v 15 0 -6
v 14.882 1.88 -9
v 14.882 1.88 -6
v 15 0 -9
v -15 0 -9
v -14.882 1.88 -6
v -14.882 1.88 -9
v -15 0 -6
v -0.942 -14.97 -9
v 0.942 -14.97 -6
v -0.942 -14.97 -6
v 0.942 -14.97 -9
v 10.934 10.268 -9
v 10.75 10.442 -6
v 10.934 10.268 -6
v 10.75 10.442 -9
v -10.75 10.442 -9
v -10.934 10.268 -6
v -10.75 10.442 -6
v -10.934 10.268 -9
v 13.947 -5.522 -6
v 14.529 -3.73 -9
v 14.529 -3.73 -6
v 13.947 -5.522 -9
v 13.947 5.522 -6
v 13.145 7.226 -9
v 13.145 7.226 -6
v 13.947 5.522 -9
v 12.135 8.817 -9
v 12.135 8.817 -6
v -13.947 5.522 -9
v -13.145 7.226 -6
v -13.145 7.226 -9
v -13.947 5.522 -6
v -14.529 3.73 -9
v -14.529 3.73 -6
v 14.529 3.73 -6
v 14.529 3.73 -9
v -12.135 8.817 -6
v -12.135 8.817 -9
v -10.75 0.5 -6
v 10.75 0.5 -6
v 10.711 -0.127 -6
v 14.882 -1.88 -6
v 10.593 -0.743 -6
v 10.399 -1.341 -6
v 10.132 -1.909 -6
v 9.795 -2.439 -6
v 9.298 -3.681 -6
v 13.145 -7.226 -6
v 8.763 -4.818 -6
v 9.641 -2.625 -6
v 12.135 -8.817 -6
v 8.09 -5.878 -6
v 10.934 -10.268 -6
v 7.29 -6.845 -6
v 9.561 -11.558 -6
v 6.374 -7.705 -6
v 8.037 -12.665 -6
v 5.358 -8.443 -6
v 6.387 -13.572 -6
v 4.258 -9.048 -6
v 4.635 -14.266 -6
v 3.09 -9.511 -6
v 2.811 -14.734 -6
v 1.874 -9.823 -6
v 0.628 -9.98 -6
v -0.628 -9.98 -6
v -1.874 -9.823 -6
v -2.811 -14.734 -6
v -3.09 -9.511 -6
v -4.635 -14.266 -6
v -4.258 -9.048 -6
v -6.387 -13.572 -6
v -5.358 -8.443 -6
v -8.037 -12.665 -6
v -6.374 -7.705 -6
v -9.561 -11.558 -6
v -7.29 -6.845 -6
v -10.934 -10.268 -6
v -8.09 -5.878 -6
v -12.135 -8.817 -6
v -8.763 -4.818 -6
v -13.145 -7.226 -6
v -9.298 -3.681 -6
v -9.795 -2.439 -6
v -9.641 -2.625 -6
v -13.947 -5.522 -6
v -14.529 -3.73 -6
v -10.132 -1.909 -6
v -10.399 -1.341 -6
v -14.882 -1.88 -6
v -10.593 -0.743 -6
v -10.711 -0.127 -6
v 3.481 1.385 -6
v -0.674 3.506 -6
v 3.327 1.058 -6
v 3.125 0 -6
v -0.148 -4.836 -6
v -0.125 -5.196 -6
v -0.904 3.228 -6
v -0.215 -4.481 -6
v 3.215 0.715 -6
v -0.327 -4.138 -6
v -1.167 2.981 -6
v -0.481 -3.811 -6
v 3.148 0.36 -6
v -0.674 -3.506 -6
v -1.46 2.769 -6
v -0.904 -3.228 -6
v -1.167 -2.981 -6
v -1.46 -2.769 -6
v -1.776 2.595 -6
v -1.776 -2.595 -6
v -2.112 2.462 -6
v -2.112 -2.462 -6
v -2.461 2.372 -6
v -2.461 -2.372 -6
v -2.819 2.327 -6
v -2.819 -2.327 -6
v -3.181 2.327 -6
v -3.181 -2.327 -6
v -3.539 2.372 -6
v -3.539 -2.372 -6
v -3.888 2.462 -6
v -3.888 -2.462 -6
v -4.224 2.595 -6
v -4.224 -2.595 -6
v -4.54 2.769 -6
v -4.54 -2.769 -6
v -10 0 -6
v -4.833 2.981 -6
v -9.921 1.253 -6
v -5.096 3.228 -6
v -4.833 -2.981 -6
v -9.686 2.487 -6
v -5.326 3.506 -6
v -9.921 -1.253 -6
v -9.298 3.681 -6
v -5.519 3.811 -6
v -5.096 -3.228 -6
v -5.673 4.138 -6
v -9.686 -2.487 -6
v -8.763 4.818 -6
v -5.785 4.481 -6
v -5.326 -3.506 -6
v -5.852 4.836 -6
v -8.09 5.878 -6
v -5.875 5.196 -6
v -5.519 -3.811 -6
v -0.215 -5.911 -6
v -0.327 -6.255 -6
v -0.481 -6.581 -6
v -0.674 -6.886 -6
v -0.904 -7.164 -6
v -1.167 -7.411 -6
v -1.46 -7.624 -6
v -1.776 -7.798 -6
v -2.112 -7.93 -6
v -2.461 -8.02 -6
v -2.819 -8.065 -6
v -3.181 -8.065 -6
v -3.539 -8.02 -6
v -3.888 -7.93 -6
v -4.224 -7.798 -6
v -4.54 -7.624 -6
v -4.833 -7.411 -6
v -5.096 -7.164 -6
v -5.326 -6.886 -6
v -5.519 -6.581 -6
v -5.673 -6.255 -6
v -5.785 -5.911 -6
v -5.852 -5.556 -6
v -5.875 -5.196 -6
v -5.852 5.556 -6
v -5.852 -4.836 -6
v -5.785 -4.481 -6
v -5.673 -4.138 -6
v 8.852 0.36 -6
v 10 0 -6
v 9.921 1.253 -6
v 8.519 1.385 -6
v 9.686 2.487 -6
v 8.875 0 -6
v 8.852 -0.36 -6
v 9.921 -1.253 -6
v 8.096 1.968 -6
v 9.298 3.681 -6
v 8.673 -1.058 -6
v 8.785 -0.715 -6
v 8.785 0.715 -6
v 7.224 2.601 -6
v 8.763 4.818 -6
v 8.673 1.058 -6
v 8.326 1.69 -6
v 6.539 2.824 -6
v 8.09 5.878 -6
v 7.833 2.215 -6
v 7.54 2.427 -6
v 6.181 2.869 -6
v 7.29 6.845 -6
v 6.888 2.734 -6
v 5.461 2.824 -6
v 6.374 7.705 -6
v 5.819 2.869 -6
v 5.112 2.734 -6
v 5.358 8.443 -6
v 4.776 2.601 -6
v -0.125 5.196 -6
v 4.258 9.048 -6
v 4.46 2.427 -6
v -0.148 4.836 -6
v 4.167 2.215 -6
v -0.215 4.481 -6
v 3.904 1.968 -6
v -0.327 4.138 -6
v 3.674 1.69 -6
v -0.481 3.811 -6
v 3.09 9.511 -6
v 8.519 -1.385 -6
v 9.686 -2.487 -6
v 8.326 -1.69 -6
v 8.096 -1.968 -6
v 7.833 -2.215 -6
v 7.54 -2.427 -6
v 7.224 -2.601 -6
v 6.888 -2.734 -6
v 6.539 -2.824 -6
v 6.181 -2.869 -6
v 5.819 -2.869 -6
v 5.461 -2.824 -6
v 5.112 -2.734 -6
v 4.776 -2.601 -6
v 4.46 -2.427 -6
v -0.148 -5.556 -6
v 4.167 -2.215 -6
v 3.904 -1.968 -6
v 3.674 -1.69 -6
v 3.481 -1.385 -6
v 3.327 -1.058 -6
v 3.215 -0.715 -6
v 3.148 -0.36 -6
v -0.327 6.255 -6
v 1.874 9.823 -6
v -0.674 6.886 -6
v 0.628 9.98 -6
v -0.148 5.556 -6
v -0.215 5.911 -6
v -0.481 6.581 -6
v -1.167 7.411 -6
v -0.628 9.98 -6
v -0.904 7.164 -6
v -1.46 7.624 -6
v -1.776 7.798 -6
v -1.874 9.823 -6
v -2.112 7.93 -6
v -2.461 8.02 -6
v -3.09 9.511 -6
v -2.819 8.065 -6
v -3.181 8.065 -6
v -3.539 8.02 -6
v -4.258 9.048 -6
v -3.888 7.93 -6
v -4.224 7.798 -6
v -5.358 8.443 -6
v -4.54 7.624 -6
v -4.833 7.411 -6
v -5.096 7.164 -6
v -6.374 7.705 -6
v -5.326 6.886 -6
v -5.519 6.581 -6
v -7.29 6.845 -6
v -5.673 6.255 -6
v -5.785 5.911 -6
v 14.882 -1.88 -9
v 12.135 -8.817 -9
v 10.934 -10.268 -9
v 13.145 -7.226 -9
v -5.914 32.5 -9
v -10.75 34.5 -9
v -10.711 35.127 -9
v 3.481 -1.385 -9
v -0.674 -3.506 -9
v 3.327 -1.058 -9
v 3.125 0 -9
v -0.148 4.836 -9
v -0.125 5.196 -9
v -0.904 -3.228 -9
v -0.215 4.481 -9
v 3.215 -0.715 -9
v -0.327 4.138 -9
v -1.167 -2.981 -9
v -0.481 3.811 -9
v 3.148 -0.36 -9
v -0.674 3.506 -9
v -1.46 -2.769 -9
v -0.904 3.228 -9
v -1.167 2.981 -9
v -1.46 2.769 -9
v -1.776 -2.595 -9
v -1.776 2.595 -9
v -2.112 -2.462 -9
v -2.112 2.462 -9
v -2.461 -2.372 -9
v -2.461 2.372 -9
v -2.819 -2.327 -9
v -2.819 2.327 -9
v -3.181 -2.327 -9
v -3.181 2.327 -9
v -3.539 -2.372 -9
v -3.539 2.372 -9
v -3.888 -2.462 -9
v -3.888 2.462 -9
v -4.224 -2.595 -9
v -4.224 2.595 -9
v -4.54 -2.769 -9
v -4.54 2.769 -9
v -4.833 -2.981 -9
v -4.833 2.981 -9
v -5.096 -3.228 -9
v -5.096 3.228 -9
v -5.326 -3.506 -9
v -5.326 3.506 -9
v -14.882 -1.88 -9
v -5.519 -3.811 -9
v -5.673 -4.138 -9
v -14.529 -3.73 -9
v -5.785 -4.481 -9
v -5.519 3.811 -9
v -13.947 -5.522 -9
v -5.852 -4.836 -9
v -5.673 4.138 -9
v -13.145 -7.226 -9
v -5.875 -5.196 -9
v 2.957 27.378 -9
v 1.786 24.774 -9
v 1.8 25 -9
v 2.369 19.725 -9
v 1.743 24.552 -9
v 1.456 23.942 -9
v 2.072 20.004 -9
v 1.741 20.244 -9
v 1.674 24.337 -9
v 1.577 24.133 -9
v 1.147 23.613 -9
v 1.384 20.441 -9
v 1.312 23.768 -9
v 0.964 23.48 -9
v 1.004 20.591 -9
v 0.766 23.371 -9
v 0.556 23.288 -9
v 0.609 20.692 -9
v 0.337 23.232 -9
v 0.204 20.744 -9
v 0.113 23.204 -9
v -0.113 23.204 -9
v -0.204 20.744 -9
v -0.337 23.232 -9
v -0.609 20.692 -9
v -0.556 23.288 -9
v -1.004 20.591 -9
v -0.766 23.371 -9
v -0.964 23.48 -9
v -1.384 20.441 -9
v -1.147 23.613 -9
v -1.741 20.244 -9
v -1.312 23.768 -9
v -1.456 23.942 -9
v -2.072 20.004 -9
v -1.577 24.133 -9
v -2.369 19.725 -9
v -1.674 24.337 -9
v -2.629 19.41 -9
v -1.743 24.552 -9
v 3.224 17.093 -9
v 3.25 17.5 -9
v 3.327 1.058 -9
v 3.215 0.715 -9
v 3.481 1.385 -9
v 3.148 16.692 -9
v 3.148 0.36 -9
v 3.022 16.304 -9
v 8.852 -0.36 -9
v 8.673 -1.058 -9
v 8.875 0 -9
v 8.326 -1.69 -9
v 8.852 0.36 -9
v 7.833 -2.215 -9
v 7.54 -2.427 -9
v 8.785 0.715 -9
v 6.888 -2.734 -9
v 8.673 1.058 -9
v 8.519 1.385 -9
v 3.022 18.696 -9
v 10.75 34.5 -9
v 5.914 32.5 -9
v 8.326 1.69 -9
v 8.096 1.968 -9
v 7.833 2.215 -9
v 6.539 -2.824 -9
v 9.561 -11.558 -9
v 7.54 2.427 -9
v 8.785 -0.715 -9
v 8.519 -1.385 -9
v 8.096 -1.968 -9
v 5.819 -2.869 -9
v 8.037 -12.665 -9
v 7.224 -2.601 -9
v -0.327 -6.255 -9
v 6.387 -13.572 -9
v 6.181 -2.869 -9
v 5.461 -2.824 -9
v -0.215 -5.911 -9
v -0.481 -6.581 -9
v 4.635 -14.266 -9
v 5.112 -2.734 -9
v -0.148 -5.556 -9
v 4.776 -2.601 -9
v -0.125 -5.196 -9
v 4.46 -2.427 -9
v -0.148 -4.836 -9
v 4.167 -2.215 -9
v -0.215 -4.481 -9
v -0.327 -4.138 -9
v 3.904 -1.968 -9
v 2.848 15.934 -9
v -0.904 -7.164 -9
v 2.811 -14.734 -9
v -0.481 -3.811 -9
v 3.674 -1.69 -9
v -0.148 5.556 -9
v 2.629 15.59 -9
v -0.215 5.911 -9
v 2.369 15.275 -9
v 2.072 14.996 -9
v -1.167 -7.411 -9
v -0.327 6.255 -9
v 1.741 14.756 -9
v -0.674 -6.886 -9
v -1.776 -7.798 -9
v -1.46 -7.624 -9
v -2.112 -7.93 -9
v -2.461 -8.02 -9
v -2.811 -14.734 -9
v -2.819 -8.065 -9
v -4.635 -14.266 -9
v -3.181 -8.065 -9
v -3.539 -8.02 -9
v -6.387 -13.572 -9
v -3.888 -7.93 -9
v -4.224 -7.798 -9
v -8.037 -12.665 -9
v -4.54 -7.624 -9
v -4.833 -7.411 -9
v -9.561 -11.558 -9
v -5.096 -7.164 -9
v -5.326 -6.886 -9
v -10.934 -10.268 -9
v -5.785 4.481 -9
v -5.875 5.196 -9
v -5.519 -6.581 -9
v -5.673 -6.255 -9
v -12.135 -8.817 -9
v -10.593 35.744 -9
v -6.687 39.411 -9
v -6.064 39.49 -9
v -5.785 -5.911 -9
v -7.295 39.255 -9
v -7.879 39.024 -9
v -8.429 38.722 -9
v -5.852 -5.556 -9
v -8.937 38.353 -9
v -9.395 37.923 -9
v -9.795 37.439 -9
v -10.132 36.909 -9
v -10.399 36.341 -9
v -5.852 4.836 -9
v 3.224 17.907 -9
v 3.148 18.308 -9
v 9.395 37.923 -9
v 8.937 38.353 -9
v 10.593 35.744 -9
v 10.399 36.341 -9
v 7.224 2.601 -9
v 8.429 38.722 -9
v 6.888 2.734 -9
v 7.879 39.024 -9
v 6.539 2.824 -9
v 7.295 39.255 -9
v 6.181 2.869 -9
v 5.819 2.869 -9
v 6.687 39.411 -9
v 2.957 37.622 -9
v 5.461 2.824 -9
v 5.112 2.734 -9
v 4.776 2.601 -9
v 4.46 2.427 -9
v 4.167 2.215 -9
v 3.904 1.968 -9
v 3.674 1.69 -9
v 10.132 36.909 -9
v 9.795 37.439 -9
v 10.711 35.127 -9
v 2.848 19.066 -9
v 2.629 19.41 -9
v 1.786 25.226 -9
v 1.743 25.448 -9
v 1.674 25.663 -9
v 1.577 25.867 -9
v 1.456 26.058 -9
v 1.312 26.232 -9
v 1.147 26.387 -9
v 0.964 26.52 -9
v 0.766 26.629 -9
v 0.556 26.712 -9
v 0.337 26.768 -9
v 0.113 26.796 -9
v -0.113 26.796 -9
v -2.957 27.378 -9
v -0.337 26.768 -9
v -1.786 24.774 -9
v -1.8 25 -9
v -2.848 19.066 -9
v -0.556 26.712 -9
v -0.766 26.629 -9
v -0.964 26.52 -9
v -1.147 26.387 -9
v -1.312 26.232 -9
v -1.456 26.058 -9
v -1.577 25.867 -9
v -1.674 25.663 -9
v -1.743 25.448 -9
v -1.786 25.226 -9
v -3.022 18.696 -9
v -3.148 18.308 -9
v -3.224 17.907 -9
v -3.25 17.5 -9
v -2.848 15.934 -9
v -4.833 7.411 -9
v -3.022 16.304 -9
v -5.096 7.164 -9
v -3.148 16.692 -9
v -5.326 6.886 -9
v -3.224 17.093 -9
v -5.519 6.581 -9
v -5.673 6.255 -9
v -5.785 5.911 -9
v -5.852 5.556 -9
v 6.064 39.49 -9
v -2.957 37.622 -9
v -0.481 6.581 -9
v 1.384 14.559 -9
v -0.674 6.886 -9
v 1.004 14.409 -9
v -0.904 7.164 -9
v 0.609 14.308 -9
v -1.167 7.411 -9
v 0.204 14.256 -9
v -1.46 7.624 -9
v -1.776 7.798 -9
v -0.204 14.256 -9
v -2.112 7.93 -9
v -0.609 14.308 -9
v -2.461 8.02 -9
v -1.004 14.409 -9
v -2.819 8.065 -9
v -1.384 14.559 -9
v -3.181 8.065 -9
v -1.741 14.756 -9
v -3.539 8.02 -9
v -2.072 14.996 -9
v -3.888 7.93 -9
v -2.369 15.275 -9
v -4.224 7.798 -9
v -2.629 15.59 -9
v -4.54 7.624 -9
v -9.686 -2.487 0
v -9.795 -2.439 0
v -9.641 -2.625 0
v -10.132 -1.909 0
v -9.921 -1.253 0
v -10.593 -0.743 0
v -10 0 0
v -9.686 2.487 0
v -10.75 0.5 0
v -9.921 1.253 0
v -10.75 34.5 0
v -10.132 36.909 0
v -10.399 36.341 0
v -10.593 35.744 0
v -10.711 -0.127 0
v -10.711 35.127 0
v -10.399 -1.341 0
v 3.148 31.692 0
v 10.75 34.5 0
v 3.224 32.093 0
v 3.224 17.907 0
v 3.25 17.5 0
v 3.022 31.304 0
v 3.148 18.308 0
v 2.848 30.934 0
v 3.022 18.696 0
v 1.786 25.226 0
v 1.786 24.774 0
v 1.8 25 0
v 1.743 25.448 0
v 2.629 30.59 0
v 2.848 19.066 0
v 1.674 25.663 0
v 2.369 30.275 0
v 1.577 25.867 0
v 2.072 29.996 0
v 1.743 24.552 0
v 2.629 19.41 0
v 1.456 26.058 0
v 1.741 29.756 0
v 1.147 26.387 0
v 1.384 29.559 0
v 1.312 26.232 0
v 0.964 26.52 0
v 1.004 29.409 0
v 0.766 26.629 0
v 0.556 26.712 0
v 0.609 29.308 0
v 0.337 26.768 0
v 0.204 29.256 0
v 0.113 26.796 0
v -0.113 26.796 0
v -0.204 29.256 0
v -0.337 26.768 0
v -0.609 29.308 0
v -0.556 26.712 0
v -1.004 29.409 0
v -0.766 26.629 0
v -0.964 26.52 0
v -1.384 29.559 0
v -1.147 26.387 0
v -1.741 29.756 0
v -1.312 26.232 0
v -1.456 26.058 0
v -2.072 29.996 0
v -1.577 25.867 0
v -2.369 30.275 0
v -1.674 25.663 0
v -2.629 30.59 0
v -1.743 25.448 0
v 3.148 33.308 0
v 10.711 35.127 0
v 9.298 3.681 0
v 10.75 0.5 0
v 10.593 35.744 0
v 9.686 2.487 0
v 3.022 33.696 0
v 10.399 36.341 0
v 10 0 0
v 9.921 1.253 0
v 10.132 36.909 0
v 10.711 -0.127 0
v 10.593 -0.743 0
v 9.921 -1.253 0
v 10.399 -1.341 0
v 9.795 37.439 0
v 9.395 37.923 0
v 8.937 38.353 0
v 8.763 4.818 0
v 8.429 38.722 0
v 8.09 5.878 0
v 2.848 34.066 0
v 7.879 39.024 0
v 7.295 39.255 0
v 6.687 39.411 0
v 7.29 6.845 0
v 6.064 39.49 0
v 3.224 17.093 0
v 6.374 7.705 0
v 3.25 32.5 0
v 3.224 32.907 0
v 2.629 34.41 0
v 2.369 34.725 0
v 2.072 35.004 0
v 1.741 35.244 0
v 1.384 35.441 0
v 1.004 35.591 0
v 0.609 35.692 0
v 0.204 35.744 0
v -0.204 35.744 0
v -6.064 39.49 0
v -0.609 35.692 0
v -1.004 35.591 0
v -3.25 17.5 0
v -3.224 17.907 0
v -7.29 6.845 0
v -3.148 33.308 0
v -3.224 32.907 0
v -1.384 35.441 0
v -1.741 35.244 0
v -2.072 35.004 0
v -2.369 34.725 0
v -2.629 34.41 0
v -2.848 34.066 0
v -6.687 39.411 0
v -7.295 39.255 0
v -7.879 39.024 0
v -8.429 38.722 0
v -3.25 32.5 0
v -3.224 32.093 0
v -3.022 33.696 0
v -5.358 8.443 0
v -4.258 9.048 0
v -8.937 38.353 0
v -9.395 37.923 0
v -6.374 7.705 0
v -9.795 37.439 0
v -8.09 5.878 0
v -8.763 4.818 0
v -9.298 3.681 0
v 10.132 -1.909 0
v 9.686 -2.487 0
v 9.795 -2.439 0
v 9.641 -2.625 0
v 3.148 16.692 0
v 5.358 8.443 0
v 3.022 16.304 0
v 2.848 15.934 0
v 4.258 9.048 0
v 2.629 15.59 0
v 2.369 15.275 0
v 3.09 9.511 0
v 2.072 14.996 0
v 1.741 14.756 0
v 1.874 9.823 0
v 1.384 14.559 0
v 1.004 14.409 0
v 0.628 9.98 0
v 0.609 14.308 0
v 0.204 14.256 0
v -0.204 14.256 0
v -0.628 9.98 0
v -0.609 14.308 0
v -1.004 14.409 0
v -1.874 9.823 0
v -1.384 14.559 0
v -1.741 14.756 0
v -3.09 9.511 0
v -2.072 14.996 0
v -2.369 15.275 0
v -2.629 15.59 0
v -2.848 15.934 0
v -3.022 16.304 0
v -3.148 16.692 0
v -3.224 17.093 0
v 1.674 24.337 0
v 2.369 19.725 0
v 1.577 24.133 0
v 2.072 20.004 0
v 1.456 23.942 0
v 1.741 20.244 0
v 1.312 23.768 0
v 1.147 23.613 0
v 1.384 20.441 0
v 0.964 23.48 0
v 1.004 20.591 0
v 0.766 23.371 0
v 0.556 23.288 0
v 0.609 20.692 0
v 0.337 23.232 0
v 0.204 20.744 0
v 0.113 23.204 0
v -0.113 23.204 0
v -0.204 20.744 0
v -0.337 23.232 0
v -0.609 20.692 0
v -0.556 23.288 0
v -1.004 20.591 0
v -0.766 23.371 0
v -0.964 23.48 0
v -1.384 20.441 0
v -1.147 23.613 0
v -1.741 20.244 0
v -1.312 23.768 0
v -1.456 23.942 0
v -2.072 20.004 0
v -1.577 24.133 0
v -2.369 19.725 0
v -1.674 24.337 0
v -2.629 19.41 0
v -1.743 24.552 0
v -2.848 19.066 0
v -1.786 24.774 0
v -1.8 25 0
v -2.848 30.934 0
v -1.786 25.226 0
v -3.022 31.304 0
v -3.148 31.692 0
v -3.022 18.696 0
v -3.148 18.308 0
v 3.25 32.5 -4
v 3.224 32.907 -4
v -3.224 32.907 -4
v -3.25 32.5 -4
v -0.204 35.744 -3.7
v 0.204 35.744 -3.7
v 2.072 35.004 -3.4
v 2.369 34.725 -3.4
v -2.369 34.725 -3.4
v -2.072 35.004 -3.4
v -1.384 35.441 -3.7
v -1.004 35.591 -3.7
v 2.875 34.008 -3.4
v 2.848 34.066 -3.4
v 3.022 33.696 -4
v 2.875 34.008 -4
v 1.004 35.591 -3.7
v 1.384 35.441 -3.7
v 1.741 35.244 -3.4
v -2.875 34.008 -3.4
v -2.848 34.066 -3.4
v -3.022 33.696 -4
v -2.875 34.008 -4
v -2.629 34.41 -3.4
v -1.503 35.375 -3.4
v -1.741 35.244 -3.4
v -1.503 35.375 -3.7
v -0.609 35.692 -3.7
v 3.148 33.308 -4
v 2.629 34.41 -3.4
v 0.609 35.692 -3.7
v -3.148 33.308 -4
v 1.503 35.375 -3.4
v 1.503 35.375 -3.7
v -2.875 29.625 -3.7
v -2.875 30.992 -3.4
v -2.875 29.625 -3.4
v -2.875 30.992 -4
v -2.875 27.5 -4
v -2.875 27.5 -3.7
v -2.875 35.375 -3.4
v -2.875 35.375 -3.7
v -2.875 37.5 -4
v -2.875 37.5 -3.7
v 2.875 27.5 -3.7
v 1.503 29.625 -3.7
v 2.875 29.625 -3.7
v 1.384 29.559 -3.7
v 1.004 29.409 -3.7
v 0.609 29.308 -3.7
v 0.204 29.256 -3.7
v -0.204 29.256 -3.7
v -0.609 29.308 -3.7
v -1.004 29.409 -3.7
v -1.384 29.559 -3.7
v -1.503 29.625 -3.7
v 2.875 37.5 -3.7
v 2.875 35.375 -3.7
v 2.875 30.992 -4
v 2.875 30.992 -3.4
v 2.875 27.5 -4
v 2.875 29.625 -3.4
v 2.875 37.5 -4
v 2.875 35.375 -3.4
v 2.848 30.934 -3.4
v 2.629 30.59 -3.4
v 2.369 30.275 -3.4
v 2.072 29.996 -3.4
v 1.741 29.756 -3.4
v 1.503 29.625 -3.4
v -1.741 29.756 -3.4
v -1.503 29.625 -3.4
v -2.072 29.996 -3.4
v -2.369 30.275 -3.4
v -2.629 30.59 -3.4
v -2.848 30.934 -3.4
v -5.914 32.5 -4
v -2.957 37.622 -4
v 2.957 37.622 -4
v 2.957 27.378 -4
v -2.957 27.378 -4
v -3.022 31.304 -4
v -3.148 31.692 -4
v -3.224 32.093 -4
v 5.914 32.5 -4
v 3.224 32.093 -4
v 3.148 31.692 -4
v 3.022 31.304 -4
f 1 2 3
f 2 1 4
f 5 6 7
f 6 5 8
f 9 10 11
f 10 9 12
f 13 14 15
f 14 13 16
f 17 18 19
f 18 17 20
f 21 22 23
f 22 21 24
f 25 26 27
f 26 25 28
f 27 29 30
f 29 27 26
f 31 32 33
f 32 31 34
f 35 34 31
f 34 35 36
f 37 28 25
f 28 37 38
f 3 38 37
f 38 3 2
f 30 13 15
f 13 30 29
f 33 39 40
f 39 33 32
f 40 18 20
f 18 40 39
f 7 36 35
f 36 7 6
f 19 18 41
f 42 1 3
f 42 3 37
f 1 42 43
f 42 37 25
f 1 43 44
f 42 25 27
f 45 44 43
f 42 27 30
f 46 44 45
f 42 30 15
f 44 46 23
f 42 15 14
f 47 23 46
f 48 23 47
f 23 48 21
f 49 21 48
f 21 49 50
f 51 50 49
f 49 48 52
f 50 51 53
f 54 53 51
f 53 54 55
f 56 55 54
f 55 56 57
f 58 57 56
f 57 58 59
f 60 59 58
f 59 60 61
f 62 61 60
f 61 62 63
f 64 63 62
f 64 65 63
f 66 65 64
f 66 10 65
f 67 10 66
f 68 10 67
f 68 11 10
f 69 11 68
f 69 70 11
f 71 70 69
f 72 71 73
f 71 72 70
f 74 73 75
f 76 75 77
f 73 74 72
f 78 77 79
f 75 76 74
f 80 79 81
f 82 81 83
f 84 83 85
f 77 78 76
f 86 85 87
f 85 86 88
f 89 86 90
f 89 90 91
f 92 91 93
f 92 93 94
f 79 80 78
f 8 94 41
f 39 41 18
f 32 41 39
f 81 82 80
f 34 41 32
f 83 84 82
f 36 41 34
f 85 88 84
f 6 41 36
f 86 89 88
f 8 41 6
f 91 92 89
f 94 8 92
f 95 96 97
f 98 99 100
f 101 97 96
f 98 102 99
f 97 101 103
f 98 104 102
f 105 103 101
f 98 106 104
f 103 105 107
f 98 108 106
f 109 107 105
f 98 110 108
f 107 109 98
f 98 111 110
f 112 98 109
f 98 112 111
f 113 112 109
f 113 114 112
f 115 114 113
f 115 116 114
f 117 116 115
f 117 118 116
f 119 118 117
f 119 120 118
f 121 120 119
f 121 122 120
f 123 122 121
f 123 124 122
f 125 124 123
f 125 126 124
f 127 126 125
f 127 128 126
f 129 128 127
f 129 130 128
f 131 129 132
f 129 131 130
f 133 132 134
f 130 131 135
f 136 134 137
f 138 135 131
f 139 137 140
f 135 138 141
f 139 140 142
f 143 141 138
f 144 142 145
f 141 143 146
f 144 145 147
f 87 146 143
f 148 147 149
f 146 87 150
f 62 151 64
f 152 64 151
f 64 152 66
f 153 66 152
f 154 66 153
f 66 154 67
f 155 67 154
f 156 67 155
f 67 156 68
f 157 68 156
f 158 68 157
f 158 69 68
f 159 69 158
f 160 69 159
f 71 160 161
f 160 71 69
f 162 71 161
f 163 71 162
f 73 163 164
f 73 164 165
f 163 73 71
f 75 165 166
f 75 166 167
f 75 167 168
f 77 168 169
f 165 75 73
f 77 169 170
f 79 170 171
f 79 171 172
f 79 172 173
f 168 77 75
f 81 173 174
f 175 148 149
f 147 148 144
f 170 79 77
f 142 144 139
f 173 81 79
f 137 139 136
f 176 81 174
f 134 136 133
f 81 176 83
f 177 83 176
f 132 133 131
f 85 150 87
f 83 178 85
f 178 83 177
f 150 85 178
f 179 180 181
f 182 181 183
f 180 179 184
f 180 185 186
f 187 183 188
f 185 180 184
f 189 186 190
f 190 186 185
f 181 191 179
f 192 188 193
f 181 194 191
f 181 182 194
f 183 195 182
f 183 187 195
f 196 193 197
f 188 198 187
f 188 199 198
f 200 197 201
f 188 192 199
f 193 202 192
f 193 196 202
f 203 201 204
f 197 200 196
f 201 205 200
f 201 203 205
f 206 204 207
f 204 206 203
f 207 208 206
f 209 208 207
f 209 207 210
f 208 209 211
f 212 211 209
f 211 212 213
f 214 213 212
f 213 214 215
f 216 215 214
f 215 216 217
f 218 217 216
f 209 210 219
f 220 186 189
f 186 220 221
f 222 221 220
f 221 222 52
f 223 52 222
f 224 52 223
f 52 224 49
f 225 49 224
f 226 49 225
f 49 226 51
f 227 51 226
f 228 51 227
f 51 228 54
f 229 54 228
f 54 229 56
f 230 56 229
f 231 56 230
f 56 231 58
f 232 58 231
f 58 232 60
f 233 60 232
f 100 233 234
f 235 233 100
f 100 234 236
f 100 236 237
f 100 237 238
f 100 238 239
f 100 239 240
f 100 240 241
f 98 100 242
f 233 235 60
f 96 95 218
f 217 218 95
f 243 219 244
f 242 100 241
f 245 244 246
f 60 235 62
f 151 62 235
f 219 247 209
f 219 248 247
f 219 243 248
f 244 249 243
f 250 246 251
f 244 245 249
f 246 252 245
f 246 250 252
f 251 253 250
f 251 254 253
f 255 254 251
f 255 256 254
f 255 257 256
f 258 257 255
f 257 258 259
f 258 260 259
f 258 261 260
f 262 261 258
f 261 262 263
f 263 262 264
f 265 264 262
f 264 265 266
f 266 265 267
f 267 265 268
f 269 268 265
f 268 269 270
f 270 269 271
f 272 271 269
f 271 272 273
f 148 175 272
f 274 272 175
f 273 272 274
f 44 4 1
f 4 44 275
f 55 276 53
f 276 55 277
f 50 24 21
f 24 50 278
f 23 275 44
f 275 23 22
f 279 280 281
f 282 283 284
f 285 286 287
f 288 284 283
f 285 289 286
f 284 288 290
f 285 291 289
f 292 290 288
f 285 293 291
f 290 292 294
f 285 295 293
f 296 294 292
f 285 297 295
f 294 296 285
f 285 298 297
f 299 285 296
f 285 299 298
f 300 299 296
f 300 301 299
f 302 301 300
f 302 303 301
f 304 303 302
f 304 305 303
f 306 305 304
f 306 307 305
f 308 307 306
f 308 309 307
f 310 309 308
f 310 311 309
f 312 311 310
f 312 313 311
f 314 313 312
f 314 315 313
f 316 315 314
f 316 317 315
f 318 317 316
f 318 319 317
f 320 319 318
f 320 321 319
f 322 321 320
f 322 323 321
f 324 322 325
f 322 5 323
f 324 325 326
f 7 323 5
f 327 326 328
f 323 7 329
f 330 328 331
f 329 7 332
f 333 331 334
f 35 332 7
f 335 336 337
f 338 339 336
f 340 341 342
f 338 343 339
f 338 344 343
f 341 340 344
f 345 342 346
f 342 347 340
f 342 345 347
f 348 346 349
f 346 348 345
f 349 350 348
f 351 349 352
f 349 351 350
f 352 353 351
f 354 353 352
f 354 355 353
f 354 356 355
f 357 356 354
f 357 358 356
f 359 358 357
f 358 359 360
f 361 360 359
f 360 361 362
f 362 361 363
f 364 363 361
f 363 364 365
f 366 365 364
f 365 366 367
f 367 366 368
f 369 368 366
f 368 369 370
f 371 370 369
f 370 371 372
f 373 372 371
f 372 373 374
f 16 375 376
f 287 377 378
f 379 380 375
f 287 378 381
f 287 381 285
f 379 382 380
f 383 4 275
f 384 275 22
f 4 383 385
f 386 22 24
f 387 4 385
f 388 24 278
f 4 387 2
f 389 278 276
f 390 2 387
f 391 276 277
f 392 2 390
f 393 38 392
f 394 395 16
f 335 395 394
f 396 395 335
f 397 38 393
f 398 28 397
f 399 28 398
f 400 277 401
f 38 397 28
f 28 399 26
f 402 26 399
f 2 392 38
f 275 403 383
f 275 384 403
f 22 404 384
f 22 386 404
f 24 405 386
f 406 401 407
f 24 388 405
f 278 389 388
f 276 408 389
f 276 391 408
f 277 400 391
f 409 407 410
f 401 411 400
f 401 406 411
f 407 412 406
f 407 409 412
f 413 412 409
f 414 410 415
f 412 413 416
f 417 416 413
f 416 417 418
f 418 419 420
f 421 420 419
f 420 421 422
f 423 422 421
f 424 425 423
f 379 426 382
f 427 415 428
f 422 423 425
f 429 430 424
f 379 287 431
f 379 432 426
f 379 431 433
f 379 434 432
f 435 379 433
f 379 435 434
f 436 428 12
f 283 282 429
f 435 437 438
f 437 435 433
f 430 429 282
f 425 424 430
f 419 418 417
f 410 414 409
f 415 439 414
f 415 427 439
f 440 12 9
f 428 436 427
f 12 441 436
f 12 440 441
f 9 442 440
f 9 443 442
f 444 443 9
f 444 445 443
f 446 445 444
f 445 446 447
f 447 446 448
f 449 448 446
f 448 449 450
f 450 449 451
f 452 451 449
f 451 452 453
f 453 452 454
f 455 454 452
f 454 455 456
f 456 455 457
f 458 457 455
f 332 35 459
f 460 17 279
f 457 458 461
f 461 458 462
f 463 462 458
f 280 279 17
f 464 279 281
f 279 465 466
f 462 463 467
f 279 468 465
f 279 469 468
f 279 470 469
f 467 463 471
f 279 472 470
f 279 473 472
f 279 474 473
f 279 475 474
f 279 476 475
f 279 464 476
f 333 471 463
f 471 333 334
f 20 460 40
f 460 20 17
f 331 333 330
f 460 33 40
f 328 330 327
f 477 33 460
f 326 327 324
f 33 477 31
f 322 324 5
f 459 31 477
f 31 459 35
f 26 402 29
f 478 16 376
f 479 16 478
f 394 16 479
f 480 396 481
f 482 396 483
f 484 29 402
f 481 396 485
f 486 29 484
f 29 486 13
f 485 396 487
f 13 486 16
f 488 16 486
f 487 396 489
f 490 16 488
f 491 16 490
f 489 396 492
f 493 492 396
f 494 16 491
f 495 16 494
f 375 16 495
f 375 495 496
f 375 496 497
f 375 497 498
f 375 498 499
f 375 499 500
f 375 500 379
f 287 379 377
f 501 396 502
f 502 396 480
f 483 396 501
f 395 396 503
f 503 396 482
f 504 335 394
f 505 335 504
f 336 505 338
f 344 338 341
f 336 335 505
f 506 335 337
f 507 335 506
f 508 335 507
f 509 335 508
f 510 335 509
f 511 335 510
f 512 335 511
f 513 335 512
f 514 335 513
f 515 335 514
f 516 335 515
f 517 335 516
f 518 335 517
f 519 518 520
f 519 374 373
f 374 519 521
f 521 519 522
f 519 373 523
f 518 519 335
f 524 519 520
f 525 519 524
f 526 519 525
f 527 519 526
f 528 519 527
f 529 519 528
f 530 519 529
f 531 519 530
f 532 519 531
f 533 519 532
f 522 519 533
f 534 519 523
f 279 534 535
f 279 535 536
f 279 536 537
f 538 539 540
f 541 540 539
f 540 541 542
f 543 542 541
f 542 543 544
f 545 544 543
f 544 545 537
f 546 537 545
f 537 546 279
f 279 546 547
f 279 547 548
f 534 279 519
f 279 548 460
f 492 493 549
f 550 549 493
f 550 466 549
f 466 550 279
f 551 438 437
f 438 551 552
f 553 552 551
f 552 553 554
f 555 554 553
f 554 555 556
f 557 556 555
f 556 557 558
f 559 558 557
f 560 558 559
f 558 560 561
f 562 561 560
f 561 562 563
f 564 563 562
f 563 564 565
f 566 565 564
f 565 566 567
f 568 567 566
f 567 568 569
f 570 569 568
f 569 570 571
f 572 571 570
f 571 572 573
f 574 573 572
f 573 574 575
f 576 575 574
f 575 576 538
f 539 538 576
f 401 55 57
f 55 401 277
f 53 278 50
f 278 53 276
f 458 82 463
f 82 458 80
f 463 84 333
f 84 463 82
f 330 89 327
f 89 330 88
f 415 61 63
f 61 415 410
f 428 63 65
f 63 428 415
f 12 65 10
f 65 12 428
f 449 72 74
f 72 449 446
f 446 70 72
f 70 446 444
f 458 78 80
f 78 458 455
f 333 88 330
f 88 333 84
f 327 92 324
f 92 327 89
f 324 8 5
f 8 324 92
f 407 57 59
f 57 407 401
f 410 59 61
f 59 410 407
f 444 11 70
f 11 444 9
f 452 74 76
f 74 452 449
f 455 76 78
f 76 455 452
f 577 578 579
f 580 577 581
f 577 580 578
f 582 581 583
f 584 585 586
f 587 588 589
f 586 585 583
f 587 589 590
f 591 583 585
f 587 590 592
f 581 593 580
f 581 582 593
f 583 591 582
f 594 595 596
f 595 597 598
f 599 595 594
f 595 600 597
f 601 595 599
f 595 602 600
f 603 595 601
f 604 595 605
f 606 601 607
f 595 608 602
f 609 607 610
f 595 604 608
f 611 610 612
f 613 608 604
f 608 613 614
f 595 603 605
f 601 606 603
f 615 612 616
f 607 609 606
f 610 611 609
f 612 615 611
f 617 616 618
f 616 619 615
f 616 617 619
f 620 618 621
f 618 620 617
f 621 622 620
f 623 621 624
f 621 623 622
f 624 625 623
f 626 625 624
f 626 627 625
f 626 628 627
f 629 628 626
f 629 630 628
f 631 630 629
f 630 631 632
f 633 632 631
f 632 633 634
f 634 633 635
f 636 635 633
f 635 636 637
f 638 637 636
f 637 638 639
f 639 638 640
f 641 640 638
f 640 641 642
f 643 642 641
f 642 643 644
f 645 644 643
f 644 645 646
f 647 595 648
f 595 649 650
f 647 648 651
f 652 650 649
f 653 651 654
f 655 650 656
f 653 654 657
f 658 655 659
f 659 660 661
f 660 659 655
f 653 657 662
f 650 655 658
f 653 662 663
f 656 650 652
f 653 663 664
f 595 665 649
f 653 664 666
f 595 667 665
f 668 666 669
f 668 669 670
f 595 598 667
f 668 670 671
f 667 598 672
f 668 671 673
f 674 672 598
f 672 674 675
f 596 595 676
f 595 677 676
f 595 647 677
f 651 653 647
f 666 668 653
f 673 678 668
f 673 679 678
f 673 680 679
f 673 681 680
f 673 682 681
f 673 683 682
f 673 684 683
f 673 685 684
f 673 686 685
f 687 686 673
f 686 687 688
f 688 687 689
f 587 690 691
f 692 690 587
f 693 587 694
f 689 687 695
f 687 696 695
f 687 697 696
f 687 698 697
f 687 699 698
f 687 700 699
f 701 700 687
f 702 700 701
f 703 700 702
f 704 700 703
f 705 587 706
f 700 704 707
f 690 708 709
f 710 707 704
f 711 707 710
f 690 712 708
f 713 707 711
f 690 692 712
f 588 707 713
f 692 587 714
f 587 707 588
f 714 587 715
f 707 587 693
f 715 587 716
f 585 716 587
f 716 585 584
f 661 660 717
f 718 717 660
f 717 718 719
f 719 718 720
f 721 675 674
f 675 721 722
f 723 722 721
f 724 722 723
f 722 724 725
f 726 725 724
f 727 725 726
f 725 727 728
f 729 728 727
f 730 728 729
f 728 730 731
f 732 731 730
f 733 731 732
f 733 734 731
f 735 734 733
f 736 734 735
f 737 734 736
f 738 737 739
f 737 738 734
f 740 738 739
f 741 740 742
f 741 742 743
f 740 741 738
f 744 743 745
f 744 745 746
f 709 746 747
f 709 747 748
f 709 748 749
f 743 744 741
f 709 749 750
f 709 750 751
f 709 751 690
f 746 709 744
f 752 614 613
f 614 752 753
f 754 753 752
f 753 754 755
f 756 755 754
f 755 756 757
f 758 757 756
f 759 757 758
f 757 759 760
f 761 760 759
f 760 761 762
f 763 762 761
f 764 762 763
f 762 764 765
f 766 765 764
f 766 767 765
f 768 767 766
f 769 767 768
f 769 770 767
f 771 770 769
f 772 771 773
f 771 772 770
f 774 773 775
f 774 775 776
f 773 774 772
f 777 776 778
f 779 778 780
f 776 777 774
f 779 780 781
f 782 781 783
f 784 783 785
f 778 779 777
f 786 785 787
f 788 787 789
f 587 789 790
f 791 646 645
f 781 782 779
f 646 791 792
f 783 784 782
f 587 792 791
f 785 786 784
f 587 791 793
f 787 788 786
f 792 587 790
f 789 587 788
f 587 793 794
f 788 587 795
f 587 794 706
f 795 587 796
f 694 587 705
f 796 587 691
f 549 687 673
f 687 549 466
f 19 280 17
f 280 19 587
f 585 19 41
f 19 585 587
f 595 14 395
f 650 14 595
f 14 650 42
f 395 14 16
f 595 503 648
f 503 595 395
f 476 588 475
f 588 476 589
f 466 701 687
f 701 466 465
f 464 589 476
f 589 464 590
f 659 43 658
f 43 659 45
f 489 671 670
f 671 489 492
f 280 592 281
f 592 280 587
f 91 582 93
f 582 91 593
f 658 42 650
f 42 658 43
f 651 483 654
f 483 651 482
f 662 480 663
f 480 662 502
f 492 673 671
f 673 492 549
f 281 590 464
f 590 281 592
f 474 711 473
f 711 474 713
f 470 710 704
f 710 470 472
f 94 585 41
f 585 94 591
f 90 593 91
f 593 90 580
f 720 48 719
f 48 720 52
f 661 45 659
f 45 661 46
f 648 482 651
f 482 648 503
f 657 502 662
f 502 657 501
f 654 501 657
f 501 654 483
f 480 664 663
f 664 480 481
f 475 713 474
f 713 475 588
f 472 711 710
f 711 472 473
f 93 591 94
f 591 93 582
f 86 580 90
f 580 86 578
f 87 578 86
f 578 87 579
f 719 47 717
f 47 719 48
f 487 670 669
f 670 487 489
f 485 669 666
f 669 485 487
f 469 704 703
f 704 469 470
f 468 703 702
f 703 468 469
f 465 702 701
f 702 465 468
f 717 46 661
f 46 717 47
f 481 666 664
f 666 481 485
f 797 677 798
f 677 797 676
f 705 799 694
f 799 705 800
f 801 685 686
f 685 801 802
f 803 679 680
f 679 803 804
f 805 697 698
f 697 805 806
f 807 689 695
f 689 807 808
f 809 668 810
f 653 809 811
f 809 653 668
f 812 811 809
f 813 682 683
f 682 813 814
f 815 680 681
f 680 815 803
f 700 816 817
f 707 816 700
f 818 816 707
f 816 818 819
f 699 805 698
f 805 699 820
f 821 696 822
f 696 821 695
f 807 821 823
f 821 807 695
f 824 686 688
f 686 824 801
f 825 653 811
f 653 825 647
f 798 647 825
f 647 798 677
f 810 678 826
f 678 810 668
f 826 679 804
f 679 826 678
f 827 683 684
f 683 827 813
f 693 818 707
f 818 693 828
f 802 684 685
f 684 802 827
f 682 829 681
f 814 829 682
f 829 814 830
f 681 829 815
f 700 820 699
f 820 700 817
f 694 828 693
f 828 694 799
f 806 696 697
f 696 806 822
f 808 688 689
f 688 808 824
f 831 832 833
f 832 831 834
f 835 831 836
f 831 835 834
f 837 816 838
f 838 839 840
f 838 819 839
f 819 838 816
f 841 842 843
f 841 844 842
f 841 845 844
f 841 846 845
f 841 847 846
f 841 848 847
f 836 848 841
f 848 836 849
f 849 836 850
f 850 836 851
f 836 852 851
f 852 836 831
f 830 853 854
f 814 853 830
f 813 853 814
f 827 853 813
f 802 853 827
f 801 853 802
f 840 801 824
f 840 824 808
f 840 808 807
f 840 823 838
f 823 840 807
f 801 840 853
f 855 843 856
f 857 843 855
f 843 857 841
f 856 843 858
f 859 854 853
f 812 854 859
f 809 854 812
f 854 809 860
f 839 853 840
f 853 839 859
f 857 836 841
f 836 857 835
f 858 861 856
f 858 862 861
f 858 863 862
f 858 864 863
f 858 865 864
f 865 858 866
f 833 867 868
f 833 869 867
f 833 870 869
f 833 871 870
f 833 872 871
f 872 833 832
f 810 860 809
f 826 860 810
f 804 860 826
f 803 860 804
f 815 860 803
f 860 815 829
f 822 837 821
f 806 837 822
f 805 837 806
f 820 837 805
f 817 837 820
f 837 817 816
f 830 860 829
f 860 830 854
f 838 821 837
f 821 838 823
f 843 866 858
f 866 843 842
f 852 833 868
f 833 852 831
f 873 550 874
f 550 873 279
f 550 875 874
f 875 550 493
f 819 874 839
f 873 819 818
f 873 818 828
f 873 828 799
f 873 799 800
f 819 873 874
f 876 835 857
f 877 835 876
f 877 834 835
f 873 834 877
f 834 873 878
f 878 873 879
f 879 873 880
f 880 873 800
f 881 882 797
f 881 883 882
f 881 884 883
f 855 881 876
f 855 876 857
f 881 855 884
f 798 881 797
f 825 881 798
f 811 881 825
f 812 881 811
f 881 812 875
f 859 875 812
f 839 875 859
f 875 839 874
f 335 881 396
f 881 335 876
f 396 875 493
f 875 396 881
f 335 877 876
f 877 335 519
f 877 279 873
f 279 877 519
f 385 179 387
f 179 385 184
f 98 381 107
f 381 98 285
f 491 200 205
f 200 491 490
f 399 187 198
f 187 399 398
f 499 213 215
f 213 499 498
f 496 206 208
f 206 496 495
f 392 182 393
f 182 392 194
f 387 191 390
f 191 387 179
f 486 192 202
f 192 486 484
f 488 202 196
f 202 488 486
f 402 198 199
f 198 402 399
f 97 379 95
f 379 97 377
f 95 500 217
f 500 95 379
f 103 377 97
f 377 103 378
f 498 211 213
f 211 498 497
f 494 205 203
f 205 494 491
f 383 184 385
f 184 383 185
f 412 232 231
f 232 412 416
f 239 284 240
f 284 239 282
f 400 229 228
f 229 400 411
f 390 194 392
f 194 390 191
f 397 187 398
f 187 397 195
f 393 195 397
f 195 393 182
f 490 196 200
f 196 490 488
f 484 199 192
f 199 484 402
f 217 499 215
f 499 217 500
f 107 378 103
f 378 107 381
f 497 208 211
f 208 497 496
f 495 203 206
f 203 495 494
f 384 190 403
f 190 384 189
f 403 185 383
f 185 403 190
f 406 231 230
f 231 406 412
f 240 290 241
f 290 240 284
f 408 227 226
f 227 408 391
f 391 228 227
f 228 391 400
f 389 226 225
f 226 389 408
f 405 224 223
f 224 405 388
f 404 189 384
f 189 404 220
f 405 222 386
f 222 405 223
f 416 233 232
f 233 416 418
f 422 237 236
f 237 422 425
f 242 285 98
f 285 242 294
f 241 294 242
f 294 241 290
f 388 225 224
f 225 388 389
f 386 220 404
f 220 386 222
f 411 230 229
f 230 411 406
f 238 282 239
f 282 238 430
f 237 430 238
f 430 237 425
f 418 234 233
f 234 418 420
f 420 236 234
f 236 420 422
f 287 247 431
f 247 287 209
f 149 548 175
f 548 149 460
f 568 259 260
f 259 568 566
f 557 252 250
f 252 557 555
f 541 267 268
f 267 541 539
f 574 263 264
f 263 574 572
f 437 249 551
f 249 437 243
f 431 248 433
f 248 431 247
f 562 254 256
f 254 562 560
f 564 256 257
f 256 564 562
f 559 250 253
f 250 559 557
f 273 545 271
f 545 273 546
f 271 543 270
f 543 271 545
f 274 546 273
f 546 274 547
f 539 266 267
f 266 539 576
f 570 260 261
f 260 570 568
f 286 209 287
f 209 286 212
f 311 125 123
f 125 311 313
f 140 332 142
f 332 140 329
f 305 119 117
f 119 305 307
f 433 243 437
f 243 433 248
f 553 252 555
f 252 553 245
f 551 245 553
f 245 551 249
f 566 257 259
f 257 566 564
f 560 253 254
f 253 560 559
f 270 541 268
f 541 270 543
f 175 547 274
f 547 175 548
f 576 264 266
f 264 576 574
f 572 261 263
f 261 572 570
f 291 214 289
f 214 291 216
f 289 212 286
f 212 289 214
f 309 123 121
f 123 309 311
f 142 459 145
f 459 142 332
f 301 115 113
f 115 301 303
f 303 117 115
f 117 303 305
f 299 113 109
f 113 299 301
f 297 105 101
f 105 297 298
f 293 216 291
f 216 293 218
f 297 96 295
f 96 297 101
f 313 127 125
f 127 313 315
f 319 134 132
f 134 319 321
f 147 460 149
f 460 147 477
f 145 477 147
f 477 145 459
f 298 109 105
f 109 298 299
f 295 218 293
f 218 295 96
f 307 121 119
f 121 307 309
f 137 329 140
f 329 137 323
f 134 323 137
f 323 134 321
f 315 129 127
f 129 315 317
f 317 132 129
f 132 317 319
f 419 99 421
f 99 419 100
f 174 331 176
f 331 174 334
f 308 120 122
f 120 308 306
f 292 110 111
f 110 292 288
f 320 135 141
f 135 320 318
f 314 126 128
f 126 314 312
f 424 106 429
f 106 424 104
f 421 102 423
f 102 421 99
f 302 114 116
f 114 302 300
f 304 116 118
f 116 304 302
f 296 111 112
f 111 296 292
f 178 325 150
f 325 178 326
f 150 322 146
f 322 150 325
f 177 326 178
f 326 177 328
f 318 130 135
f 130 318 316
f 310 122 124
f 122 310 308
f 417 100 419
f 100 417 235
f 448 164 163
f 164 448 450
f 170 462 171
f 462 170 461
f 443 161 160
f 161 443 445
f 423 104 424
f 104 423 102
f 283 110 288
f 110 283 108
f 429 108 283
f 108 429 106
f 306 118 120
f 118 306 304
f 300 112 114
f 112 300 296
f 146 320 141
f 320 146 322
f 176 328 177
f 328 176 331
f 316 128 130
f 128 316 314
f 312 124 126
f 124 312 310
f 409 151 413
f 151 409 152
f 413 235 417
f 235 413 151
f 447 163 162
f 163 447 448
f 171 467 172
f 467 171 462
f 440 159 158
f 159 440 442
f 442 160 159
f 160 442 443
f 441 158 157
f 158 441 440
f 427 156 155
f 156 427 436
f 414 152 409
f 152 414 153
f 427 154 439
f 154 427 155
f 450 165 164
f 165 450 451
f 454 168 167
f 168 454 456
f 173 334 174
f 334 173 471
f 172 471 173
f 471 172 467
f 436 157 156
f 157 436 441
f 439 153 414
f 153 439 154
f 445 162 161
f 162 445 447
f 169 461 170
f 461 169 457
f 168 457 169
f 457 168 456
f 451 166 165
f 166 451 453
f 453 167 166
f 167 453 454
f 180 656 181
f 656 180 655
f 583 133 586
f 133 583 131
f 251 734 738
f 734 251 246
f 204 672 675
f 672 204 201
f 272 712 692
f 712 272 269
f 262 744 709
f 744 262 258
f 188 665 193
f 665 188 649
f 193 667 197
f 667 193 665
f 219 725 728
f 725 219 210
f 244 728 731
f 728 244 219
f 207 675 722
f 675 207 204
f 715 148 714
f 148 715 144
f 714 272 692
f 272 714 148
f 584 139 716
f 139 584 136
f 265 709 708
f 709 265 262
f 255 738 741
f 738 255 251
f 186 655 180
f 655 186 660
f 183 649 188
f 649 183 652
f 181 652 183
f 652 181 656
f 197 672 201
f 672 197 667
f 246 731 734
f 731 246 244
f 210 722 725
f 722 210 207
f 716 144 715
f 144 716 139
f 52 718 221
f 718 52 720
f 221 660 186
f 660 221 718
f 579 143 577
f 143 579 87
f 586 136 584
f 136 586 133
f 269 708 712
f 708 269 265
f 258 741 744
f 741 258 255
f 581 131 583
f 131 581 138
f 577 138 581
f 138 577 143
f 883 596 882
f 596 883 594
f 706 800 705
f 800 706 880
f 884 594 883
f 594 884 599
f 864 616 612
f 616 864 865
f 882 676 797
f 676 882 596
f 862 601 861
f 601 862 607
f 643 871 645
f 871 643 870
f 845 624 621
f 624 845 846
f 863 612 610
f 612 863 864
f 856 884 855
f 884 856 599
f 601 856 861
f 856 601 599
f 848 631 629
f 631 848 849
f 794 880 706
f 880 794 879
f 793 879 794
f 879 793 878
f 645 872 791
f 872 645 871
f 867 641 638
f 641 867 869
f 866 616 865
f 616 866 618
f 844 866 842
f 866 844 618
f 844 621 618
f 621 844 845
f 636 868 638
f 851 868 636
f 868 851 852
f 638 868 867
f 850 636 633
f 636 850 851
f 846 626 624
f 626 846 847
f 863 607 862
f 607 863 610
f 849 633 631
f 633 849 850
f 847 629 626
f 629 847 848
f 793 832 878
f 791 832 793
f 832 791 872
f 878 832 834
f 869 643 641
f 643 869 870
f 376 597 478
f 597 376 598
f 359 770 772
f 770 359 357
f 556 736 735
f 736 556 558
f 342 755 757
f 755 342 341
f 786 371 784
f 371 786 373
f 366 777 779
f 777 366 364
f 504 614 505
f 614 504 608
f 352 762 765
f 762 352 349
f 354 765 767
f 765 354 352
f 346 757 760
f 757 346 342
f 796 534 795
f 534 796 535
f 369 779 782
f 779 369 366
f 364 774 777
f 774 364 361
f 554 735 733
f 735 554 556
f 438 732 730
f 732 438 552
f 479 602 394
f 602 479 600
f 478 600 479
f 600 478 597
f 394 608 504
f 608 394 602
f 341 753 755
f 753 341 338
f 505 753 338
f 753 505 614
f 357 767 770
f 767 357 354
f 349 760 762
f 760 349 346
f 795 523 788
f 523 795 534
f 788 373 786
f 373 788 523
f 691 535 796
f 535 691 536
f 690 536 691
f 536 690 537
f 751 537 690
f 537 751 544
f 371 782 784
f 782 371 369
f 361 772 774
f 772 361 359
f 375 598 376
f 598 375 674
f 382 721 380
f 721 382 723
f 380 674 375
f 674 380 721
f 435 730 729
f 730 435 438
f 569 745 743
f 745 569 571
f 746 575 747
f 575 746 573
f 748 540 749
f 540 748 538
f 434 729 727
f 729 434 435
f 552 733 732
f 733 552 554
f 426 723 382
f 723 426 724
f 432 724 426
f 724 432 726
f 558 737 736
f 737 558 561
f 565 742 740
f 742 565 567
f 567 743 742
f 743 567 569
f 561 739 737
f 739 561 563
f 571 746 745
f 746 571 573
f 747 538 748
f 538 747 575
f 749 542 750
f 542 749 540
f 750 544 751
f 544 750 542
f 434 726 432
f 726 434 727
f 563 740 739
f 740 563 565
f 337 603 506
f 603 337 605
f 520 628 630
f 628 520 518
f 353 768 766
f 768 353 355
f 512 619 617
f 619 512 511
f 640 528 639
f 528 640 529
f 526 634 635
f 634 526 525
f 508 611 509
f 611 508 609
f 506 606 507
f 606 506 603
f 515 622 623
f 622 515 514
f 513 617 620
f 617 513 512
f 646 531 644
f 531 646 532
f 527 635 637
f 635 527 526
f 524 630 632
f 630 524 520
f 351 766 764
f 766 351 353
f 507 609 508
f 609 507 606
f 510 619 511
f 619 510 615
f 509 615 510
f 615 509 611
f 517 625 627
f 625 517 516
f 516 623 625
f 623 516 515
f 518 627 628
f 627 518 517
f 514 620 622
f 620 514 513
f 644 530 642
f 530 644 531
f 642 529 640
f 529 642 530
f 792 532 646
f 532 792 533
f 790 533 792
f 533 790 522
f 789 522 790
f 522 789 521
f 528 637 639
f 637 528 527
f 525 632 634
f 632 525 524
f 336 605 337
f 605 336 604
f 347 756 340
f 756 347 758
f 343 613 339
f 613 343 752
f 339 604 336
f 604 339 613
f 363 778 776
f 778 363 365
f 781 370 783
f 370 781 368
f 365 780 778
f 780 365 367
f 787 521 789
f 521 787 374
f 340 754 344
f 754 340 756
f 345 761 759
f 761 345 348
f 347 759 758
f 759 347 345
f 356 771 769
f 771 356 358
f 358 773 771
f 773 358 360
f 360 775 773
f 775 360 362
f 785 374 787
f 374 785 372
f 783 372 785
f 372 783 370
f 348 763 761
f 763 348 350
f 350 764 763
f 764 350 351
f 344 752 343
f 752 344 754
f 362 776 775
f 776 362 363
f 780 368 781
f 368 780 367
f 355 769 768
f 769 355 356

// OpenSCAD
$fn = 50;


difference() {
	union() {
		translate(v = [0, 0, -9.0000000000]) {
			cylinder(h = 3, r = 15.0000000000);
		}
		translate(v = [0, 17.5000000000, -9]) {
			hull() {
				translate(v = [-2.0000000000, 17.0000000000, 0]) {
					cylinder(h = 9, r = 5);
				}
				translate(v = [2.0000000000, 17.0000000000, 0]) {
					cylinder(h = 9, r = 5);
				}
				translate(v = [-2.0000000000, -17.0000000000, 0]) {
					cylinder(h = 9, r = 5);
				}
				translate(v = [2.0000000000, -17.0000000000, 0]) {
					cylinder(h = 9, r = 5);
				}
			}
		}
		translate(v = [0, 17.5000000000, -9]) {
			hull() {
				translate(v = [-5.7500000000, 17.0000000000, 0]) {
					cylinder(h = 9, r = 5);
				}
				translate(v = [5.7500000000, 17.0000000000, 0]) {
					cylinder(h = 9, r = 5);
				}
				translate(v = [-5.7500000000, -17.0000000000, 0]) {
					cylinder(h = 9, r = 5);
				}
				translate(v = [5.7500000000, -17.0000000000, 0]) {
					cylinder(h = 9, r = 5);
				}
			}
		}
	}
	union() {
		translate(v = [0, 32.5000000000, 0]) {
			rotate(a = [0, 0, 0]) {
				difference() {
					union() {
						translate(v = [0, 0, -50.0000000000]) {
							cylinder(h = 100, r = 3.2500000000);
						}
					}
					union();
				}
			}
		}
		translate(v = [0, 32.5000000000, -9]) {
			rotate(a = [0, 0, 0]) {
				difference() {
					union() {
						translate(v = [-2.8750000000, -5.0000000000, -0.3000000000]) {
							cube(size = [5.7500000000, 10, 0.3000000000]);
						}
						translate(v = [-2.8750000000, -2.8750000000, -0.6000000000]) {
							cube(size = [5.7500000000, 5.7500000000, 0.3000000000]);
						}
						translate(v = [-2.8750000000, -5.0000000000, 5]) {
							cube(size = [5.7500000000, 10, 0.3000000000]);
						}
						translate(v = [-2.8750000000, -2.8750000000, 5.3000000000]) {
							cube(size = [5.7500000000, 5.7500000000, 0.3000000000]);
						}
						linear_extrude(height = 5) {
							polygon(points = [[5.9142500000, 0.0000000000], [2.9571250000, 5.1218907443], [-2.9571250000, 5.1218907443], [-5.9142500000, 0.0000000000], [-2.9571250000, -5.1218907443], [2.9571250000, -5.1218907443]]);
						}
						translate(v = [-2.8750000000, -5.0000000000, -0.3000000000]) {
							cube(size = [5.7500000000, 10, 0.3000000000]);
						}
						translate(v = [-2.8750000000, -2.8750000000, -0.6000000000]) {
							cube(size = [5.7500000000, 5.7500000000, 0.3000000000]);
						}
						translate(v = [-2.8750000000, -5.0000000000, 5]) {
							cube(size = [5.7500000000, 10, 0.3000000000]);
						}
						translate(v = [-2.8750000000, -2.8750000000, 5.3000000000]) {
							cube(size = [5.7500000000, 5.7500000000, 0.3000000000]);
						}
						translate(v = [-2.8750000000, -5.0000000000, -0.3000000000]) {
							cube(size = [5.7500000000, 10, 0.3000000000]);
						}
						translate(v = [-2.8750000000, -2.8750000000, -0.6000000000]) {
							cube(size = [5.7500000000, 5.7500000000, 0.3000000000]);
						}
						translate(v = [-2.8750000000, -5.0000000000, 5]) {
							cube(size = [5.7500000000, 10, 0.3000000000]);
						}
						translate(v = [-2.8750000000, -2.8750000000, 5.3000000000]) {
							cube(size = [5.7500000000, 5.7500000000, 0.3000000000]);
						}
					}
					union();
				}
			}
		}
		translate(v = [6.0000000000, 0.0000000000, 41]) {
			rotate(a = [0, 0, 0]) {
				difference() {
					union() {
						translate(v = [0, 0, -59.0000000000]) {
							cylinder(h = 59, r = 2.6000000000);
						}
						translate(v = [0, 0, -3.9000000000]) {
							cylinder(h = 3.9000000000, r1 = 2.8750000000, r2 = 5.4000000000);
						}
						translate(v = [0, 0, -59.0000000000]) {
							cylinder(h = 59, r = 2.8750000000);
						}
						translate(v = [0, 0, -59.0000000000]) {
							cylinder(h = 59, r = 2.6000000000);
						}
					}
					union();
				}
			}
		}
		translate(v = [-3.0000000000, 5.1961524227, 41]) {
			rotate(a = [0, 0, 0]) {
				difference() {
					union() {
						translate(v = [0, 0, -59.0000000000]) {
							cylinder(h = 59, r = 2.6000000000);
						}
						translate(v = [0, 0, -3.9000000000]) {
							cylinder(h = 3.9000000000, r1 = 2.8750000000, r2 = 5.4000000000);
						}
						translate(v = [0, 0, -59.0000000000]) {
							cylinder(h = 59, r = 2.8750000000);
						}
						translate(v = [0, 0, -59.0000000000]) {
							cylinder(h = 59, r = 2.6000000000);
						}
					}
					union();
				}
			}
		}
		translate(v = [-3.0000000000, -5.1961524227, 41]) {
			rotate(a = [0, 0, 0]) {
				difference() {
					union() {
						translate(v = [0, 0, -59.0000000000]) {
							cylinder(h = 59, r = 2.6000000000);
						}
						translate(v = [0, 0, -3.9000000000]) {
							cylinder(h = 3.9000000000, r1 = 2.8750000000, r2 = 5.4000000000);
						}
						translate(v = [0, 0, -59.0000000000]) {
							cylinder(h = 59, r = 2.8750000000);
						}
						translate(v = [0, 0, -59.0000000000]) {
							cylinder(h = 59, r = 2.6000000000);
						}
					}
					union();
				}
			}
		}
		translate(v = [0, 0, -6.0000000000]) {
			cylinder(h = 100, r = 10.0000000000);
		}
		translate(v = [0.0000000000, 32.5000000000, -100.0000000000]) {
			cylinder(h = 200, r = 3.2500000000);
		}
		translate(v = [0.0000000000, 17.5000000000, -100.0000000000]) {
			cylinder(h = 200, r = 3.2500000000);
		}
		translate(v = [0.0000000000, 25.0000000000, -100.0000000000]) {
			cylinder(h = 200, r = 1.8000000000);
		}
	}
}
